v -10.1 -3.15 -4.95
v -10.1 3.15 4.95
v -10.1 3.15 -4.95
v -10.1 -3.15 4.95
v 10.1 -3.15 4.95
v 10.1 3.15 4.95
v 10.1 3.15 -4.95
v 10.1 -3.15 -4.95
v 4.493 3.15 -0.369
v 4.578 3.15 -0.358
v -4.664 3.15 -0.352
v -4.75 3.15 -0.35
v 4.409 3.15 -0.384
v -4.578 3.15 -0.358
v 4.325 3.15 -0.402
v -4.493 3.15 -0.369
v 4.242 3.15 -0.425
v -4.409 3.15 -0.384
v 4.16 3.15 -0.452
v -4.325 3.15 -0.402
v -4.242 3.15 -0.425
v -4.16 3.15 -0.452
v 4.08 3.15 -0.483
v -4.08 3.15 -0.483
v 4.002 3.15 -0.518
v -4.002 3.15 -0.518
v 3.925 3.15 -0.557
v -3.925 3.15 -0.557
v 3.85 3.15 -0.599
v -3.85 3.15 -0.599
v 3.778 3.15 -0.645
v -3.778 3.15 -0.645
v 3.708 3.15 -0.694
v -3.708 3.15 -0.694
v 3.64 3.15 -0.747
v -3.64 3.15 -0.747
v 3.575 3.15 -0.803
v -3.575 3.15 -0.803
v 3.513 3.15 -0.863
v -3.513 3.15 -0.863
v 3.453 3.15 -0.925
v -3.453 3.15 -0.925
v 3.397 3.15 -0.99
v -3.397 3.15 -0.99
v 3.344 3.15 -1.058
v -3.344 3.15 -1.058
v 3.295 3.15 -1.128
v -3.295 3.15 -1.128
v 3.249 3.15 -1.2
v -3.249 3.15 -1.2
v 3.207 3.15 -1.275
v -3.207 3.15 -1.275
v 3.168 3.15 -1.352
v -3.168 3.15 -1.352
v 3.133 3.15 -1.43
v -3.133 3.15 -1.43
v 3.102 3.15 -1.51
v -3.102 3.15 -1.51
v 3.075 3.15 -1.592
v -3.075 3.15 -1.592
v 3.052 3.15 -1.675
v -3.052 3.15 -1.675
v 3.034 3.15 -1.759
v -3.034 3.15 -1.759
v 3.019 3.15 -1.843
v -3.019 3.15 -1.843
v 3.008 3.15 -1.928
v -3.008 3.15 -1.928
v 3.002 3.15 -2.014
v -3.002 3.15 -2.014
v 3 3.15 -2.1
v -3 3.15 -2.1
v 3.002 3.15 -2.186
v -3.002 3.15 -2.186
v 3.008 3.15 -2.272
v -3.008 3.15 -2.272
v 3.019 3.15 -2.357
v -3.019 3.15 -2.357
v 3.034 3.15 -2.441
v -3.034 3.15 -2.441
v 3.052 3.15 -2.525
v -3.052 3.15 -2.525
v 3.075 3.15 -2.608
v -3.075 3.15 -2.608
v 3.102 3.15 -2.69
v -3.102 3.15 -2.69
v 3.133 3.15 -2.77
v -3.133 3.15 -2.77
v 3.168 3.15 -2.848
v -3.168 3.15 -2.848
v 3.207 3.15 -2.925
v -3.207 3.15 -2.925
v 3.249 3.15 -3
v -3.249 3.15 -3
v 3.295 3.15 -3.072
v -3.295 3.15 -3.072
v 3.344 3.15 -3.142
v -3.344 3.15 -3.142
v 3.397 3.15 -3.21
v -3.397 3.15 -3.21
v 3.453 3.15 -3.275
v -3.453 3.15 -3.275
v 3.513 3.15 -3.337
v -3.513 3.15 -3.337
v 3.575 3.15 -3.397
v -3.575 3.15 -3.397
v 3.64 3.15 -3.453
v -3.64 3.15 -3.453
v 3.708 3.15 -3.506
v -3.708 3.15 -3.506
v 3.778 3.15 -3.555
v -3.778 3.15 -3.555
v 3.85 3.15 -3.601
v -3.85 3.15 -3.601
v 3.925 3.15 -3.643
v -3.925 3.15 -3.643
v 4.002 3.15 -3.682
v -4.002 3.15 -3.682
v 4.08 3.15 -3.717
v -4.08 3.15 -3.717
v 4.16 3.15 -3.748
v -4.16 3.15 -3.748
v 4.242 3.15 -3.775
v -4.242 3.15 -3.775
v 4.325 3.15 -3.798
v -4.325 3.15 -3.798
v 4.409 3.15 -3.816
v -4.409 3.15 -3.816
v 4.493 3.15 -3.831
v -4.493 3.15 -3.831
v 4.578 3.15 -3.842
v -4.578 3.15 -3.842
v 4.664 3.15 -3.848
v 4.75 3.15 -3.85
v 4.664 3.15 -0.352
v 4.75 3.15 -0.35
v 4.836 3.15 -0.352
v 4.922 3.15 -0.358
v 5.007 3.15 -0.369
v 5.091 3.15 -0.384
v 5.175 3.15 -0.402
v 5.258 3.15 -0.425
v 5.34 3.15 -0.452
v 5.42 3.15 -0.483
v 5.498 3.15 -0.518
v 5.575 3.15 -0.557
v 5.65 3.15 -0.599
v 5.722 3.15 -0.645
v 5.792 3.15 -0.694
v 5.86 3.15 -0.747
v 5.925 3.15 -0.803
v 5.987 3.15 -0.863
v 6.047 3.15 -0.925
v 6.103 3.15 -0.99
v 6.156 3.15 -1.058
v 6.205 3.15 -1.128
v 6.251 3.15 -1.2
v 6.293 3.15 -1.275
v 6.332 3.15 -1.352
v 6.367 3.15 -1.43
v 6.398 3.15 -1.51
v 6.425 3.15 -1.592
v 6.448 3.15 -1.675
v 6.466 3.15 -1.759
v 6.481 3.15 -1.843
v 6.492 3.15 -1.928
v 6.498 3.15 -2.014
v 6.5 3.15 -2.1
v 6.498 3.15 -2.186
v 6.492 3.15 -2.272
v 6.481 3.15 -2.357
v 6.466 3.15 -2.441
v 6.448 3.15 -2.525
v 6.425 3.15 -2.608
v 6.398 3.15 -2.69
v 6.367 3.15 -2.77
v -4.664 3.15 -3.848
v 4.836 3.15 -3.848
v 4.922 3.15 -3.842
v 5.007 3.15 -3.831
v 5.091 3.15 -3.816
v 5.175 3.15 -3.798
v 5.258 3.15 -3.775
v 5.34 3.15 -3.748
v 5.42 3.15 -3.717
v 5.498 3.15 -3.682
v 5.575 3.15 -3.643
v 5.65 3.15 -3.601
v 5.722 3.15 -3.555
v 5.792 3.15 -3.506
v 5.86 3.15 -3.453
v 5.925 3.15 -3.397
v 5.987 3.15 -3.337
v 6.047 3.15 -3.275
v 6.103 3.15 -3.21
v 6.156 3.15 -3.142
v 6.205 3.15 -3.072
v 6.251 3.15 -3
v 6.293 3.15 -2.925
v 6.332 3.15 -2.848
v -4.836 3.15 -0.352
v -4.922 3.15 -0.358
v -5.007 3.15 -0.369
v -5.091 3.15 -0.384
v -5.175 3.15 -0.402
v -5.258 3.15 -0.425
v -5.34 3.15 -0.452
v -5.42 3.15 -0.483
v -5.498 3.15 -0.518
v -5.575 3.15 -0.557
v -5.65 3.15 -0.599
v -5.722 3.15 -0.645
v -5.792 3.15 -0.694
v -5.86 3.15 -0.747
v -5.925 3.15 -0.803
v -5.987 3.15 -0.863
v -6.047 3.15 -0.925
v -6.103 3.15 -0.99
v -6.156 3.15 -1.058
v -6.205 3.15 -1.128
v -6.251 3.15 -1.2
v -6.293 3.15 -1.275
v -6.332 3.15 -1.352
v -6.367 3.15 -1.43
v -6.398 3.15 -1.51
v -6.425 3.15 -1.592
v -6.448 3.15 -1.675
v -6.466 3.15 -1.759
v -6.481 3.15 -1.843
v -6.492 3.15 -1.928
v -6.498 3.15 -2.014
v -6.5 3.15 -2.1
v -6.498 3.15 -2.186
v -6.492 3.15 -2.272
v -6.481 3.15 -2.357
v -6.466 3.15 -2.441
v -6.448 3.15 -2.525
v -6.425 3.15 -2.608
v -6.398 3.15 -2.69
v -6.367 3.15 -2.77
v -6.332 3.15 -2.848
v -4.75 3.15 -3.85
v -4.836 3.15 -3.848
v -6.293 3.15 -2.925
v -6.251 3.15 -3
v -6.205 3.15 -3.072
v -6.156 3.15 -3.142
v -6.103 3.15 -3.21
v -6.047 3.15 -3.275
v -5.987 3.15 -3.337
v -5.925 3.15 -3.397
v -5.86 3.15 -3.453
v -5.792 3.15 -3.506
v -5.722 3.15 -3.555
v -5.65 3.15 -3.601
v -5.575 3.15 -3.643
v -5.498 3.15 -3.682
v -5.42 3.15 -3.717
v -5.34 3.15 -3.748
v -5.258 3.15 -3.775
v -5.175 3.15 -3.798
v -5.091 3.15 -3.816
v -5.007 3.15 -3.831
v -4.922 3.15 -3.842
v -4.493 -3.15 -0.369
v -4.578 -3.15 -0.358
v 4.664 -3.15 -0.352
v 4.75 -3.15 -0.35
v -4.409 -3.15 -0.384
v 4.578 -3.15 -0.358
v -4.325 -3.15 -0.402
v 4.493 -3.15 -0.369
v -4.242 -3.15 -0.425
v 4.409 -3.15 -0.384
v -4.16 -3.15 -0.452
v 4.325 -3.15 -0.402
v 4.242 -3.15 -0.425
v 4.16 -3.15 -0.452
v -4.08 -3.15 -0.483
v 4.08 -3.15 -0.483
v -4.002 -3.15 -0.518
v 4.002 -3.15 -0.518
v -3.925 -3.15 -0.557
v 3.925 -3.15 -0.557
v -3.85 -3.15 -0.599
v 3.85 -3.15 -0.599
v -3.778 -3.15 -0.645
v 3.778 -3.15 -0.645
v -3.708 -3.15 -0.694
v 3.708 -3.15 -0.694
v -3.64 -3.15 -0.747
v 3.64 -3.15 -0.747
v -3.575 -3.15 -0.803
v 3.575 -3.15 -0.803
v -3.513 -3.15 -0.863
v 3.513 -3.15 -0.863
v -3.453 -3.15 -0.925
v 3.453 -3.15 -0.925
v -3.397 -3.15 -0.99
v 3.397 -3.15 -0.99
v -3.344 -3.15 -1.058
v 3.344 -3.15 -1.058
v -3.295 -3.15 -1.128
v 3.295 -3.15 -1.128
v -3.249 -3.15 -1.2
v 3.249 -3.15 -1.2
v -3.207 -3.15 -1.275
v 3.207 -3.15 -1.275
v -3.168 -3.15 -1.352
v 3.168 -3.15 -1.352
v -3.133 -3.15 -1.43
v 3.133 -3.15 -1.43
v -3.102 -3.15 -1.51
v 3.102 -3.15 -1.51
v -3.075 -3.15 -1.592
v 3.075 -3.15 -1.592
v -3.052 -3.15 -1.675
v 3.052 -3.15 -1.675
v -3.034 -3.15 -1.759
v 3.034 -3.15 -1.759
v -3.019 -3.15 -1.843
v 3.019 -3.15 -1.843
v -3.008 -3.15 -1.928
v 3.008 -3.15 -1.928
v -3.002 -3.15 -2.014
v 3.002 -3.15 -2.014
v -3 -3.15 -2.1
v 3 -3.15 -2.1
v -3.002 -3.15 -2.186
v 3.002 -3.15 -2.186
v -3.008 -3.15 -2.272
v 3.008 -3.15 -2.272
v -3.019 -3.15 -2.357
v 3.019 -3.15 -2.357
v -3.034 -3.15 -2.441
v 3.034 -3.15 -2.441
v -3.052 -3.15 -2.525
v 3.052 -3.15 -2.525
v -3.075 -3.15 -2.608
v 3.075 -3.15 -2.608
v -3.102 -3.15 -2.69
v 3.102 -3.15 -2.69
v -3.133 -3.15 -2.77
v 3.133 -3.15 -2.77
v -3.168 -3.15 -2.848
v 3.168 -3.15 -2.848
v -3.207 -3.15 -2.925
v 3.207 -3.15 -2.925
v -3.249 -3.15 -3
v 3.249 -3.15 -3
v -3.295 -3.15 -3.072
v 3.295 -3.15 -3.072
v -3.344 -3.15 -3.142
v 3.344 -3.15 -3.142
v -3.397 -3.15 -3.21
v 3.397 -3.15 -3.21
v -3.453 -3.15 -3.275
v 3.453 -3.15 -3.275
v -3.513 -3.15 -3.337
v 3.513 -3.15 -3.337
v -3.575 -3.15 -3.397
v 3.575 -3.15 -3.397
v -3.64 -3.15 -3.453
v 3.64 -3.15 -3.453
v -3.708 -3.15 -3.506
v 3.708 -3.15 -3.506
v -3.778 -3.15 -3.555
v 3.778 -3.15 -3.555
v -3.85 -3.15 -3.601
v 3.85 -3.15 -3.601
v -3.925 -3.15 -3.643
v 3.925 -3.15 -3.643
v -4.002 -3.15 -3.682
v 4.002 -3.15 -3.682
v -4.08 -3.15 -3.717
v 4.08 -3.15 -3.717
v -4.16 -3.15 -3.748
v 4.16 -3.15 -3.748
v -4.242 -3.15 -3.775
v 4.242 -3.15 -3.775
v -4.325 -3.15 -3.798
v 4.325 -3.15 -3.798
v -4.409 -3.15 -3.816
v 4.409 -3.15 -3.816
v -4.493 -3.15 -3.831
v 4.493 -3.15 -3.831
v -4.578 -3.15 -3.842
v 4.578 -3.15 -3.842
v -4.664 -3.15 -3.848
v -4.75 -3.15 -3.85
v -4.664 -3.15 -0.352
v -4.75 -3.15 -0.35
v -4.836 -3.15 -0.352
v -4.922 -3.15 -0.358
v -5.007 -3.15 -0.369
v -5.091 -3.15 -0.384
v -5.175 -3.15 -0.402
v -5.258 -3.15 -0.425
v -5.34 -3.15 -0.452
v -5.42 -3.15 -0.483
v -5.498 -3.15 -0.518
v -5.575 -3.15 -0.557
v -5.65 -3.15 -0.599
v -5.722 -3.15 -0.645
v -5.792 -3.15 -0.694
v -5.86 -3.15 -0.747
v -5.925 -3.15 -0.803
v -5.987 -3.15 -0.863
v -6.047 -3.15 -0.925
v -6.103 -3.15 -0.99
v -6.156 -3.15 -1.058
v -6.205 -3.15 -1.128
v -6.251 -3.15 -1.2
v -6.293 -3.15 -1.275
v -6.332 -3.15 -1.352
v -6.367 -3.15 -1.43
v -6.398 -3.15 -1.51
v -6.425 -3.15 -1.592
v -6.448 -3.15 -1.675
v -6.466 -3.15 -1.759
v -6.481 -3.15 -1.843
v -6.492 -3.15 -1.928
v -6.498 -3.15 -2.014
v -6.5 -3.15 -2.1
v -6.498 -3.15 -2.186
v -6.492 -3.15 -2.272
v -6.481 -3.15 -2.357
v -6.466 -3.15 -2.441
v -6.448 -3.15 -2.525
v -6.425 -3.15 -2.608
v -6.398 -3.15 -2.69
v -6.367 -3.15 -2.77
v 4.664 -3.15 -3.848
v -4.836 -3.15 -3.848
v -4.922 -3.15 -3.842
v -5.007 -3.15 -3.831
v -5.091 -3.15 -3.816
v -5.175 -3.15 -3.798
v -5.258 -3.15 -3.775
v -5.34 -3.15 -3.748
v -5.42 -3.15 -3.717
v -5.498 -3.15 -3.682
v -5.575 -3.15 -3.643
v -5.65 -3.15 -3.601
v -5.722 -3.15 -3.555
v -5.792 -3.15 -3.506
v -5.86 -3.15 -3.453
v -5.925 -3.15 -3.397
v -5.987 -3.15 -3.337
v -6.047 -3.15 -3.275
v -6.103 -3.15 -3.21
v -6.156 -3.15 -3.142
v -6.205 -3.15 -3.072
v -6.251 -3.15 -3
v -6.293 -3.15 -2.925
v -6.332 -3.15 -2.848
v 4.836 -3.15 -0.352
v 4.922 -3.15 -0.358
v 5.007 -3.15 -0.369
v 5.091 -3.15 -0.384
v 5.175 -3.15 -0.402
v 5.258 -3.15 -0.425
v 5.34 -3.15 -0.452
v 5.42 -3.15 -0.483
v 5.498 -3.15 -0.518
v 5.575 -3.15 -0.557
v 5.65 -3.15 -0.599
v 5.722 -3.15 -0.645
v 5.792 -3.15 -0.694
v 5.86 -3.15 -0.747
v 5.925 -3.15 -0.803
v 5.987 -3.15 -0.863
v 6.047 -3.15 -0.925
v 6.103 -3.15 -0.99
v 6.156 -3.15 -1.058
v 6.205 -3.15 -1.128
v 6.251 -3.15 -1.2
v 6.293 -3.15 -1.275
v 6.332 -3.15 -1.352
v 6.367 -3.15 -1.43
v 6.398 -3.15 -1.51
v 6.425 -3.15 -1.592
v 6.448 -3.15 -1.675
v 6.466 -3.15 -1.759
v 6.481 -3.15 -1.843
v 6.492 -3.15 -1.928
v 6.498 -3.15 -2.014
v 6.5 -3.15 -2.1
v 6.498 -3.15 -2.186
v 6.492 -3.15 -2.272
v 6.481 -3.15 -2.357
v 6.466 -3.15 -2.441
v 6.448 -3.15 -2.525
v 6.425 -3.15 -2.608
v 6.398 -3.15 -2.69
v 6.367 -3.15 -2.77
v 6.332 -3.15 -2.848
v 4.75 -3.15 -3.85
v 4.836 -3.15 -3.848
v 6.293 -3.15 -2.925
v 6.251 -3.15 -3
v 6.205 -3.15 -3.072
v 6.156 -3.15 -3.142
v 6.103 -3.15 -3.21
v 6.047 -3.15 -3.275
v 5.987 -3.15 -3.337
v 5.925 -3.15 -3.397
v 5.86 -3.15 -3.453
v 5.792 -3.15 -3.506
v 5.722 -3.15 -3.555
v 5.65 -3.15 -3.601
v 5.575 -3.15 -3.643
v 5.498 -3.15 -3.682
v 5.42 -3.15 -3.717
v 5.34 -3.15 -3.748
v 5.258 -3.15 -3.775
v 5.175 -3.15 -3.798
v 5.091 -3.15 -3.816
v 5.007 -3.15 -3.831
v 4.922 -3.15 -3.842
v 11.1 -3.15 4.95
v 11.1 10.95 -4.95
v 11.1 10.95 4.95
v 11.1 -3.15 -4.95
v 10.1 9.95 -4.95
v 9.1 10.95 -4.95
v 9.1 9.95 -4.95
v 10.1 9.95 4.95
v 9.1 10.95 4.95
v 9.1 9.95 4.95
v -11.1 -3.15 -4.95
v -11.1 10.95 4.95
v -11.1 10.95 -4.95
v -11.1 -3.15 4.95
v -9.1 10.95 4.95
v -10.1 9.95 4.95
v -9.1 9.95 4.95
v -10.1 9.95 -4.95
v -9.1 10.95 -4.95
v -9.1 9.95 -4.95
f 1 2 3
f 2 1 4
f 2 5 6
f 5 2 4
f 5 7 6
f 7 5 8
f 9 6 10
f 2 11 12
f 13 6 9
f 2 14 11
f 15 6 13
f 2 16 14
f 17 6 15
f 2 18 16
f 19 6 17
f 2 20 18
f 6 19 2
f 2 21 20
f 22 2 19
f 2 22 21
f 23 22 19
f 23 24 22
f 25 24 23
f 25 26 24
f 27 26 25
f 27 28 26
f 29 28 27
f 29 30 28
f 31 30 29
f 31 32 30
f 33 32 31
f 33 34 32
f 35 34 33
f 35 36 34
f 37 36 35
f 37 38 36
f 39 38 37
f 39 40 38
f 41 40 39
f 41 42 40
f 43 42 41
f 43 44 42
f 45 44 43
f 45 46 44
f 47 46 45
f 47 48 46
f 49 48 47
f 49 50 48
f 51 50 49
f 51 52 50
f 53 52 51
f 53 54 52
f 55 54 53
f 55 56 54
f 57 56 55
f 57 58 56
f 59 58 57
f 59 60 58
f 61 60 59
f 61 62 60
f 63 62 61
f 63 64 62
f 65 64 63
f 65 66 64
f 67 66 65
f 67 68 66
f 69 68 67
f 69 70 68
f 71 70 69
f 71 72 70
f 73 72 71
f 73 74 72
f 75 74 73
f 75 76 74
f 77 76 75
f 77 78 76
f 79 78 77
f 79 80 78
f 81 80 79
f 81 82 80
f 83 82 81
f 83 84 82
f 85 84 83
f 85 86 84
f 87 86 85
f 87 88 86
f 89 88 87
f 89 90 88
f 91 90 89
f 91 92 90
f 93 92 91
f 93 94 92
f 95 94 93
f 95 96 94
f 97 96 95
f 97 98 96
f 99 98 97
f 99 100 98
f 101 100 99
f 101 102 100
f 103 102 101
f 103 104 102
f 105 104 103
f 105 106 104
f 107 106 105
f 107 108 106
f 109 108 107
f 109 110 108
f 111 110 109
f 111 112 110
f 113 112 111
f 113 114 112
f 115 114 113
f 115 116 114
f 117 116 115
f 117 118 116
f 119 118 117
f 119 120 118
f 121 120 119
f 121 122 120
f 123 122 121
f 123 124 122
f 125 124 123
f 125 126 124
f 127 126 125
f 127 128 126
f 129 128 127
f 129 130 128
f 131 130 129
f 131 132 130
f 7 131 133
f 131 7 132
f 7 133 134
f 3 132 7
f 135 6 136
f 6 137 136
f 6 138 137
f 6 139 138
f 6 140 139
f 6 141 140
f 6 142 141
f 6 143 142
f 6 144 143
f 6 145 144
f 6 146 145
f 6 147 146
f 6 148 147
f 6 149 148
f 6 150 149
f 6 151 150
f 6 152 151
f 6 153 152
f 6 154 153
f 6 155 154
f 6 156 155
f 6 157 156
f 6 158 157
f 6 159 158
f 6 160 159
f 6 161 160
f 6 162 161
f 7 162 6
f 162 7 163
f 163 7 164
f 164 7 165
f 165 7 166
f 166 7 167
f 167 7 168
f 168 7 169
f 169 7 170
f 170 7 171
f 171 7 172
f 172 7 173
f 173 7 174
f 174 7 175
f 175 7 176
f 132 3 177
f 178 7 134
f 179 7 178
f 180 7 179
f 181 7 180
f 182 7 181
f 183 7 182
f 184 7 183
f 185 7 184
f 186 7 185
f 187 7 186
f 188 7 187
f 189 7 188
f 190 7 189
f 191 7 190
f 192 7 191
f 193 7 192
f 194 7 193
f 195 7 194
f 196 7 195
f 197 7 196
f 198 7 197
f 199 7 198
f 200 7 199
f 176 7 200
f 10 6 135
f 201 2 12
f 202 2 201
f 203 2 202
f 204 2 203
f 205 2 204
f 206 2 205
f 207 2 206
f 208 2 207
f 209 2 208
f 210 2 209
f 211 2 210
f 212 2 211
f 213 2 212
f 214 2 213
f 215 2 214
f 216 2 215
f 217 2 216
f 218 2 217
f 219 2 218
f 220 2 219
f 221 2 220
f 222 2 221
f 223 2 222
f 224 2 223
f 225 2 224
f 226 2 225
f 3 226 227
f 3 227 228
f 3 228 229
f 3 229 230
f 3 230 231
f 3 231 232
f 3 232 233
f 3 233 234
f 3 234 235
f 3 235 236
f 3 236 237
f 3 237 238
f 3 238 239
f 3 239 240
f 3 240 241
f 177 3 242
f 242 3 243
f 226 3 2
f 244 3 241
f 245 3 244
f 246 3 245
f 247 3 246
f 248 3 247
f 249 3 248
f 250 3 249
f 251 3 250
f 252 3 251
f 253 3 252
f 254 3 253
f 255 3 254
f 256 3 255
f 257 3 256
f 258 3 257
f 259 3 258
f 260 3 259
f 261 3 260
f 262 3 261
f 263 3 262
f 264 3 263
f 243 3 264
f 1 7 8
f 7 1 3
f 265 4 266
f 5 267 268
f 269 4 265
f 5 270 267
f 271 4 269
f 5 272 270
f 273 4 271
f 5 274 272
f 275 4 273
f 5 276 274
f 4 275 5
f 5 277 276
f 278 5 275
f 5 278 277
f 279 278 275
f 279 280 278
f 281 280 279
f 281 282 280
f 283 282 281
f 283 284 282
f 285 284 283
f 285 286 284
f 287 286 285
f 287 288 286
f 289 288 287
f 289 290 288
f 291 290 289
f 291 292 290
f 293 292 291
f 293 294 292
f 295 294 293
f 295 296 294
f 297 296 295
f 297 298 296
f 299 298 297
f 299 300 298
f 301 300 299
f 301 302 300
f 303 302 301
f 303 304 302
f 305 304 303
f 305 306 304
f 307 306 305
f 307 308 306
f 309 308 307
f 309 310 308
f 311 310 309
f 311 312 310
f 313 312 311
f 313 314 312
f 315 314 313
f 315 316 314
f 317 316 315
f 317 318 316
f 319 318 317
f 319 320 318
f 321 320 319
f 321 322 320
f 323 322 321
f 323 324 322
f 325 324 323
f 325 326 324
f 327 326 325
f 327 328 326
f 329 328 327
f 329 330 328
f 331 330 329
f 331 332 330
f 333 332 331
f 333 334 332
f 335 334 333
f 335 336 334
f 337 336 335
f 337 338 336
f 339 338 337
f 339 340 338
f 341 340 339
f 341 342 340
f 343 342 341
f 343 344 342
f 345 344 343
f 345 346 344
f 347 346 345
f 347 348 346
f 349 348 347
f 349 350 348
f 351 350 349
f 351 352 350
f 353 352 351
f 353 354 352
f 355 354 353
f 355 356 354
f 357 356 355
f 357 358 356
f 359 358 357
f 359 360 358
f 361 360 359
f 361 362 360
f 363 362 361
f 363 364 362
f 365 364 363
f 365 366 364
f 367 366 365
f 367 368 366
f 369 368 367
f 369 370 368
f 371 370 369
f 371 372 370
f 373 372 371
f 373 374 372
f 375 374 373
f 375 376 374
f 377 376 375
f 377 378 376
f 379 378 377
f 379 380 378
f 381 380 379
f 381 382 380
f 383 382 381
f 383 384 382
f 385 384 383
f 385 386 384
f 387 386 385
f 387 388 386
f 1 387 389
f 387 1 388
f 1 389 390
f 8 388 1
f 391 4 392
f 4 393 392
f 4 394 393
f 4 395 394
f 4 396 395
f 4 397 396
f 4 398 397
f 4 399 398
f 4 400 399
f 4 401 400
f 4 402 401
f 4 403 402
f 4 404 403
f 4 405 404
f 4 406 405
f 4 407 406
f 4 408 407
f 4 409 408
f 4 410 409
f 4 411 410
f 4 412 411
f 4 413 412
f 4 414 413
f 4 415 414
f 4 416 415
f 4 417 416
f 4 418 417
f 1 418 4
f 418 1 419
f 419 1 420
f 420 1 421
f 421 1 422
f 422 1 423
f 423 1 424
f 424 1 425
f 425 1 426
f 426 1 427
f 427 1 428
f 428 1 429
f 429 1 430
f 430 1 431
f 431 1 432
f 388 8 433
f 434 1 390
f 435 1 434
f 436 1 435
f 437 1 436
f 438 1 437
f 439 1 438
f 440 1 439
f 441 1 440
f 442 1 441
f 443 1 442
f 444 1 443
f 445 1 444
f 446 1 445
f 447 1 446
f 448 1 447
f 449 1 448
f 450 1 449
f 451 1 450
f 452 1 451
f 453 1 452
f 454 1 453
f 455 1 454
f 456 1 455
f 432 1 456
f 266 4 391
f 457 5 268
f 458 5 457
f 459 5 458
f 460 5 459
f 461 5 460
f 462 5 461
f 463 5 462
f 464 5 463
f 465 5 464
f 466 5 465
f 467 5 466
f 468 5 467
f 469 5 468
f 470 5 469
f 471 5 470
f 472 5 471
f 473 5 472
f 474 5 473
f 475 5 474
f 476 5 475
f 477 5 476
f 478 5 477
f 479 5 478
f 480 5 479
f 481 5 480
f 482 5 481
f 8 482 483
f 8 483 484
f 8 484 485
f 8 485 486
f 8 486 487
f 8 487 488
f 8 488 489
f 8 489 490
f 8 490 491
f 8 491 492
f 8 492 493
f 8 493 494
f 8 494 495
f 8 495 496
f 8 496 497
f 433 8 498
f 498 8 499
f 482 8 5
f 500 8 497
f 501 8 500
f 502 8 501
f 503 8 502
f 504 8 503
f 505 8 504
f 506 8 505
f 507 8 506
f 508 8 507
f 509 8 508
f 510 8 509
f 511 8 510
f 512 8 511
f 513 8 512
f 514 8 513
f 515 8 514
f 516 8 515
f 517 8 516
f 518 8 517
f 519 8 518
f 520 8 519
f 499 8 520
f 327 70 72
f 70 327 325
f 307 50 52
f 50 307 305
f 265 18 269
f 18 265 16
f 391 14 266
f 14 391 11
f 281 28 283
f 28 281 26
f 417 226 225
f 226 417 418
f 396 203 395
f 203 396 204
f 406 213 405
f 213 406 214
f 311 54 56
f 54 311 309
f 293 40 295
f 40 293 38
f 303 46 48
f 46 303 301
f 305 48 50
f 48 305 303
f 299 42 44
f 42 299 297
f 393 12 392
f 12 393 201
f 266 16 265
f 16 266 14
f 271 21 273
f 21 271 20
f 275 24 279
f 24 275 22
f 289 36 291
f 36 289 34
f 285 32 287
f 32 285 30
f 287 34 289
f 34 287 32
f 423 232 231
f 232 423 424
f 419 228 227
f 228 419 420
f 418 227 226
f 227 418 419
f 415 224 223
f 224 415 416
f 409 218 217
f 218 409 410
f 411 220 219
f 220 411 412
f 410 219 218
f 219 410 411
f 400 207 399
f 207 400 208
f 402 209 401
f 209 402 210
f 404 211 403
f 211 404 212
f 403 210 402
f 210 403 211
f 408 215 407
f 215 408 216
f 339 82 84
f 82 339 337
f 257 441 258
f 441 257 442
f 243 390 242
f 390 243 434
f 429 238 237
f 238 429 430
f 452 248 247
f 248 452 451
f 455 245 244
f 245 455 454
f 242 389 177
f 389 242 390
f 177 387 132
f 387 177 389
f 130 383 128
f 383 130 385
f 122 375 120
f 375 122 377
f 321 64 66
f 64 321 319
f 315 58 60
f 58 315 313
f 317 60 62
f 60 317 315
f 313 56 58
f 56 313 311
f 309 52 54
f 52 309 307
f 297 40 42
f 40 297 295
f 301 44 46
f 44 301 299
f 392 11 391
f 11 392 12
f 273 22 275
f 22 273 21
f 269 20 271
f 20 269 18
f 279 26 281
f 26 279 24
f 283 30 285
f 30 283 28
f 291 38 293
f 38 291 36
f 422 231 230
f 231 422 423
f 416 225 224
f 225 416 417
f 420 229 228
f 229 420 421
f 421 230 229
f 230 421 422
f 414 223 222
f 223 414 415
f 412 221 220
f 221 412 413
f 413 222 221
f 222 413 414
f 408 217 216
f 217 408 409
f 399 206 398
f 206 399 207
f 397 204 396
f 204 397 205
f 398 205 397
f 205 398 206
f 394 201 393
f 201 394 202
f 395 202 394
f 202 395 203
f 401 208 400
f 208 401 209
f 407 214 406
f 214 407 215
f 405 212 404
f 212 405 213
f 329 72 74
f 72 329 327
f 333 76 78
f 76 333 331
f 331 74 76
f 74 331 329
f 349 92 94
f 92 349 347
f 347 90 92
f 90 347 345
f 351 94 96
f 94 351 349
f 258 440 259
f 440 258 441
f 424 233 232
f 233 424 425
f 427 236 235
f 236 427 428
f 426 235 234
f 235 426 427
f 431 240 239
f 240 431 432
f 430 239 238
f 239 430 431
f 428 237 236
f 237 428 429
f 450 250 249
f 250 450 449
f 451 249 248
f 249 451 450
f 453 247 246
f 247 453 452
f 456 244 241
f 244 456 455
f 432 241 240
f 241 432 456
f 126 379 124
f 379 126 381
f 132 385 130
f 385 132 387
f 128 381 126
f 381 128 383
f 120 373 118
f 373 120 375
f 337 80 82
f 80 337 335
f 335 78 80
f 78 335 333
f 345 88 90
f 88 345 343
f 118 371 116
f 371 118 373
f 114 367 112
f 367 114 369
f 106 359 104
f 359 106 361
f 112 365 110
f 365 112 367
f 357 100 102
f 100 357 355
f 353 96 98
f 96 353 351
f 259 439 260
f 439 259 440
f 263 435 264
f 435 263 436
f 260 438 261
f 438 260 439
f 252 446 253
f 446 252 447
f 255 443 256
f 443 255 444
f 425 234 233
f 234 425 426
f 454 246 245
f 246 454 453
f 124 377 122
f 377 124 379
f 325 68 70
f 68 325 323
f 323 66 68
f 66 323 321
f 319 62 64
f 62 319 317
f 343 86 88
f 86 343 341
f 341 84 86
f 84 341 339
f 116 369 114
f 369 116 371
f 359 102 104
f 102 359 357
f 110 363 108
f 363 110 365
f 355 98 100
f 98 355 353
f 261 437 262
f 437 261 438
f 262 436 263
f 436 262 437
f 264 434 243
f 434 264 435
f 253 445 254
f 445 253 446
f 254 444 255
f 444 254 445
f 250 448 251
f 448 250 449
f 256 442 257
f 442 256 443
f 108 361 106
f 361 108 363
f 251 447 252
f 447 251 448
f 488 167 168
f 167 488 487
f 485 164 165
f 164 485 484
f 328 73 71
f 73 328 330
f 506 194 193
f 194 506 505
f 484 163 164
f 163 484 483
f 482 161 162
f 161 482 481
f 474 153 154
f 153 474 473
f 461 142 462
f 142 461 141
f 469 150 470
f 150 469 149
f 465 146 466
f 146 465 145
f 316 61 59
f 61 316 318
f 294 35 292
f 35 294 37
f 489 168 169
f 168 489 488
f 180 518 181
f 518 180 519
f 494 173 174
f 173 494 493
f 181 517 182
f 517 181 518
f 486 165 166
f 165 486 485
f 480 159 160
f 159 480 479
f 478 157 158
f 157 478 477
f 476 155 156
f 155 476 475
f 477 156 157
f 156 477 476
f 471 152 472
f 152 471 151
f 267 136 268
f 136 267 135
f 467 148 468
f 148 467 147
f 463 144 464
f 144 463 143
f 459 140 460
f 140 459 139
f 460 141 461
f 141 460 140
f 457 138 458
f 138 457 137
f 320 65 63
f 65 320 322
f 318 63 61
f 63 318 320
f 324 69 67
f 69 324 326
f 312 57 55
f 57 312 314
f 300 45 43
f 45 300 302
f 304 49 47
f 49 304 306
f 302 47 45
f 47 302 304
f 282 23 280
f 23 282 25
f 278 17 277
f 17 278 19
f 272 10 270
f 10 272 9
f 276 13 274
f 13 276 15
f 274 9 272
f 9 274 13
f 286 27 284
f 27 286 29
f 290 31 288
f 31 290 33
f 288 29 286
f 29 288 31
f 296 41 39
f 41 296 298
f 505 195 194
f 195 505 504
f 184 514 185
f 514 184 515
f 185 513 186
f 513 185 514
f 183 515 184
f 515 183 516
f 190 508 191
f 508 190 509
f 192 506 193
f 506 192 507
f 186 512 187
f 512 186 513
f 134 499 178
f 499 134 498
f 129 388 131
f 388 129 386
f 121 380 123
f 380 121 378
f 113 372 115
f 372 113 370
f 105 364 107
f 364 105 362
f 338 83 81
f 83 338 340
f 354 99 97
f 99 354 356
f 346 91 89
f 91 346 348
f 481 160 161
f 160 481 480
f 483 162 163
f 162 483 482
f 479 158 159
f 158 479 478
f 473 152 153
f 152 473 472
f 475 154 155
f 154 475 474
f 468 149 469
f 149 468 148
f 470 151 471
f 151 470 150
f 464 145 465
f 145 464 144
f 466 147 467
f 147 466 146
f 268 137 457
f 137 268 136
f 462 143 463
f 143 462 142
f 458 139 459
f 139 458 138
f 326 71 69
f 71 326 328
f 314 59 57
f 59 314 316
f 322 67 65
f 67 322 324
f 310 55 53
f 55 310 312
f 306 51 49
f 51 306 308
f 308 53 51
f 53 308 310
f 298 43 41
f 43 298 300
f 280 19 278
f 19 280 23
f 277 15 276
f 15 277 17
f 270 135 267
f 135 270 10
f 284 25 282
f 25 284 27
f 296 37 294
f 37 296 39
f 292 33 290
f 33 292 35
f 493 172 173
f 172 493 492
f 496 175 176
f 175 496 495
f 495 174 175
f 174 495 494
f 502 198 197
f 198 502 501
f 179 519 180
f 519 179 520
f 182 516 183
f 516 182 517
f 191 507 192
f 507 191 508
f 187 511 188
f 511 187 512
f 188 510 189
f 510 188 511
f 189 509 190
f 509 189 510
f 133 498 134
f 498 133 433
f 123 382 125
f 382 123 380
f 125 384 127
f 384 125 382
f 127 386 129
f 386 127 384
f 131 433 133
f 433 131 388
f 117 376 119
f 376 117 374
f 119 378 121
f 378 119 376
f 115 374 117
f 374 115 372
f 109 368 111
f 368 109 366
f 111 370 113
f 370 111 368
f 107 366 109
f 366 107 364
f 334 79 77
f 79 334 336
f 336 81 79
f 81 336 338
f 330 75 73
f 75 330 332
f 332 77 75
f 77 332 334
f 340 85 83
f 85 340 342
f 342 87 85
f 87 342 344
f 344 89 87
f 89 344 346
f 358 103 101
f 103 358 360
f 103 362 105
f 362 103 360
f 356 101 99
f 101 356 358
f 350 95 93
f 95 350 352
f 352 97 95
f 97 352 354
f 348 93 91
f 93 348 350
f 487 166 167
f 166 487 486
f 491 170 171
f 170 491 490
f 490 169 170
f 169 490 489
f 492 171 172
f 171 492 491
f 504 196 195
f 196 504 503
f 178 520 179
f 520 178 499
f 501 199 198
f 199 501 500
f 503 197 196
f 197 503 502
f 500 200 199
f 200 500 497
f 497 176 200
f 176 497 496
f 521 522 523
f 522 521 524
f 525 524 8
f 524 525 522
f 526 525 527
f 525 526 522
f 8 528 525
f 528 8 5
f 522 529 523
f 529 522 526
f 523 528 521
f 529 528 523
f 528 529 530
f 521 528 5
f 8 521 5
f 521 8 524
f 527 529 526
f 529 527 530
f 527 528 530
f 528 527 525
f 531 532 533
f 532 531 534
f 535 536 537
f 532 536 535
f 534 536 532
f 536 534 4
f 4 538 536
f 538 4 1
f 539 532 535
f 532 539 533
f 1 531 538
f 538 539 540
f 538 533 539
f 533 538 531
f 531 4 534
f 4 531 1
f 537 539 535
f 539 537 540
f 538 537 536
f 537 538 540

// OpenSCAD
// Troublemaker v2: Limit Switch Mount
// https://github.com/macropin/troublemaker

pad = 0.001;
$fn = 128;
fudge = 0.4; // extra space tolerance

arm_t = 1;

thickness = 6.3;

hole_spacing = 9.5;
hole_dia = 3.5;
hole_offset = 2.1; // offset from centre of block

switch_width = 19.8 + fudge;
switch_thickness = 6.4 + fudge;
switch_height = 9.5 + fudge;


color("blue") difference() {
    cube([switch_width,thickness,switch_height], center=true);
    translate([-hole_spacing/2,0,-hole_offset]) rotate([90,0,0]) cylinder(d=hole_dia, h=100, center=true);
    translate([hole_spacing/2,0,-hole_offset]) rotate([90,0,0]) cylinder(d=hole_dia, h=100, center=true);
}

translate([(switch_width+arm_t)/2,(switch_thickness+arm_t)/2,0]) rotate([0,180,0]) arm();
translate([-(switch_width+arm_t)/2,(switch_thickness+arm_t)/2,0]) arm();


// switch body
//color("grey") translate([0,switch_thickness,0]) cube([switch_width,switch_thickness,switch_height], center=true);


module arm() {
    length = thickness+switch_thickness+arm_t;
    
    cube([arm_t,length, switch_height], center=true);
    translate([arm_t,(length-arm_t)/2,0]) cube([arm_t,arm_t, switch_height], center=true);
}
